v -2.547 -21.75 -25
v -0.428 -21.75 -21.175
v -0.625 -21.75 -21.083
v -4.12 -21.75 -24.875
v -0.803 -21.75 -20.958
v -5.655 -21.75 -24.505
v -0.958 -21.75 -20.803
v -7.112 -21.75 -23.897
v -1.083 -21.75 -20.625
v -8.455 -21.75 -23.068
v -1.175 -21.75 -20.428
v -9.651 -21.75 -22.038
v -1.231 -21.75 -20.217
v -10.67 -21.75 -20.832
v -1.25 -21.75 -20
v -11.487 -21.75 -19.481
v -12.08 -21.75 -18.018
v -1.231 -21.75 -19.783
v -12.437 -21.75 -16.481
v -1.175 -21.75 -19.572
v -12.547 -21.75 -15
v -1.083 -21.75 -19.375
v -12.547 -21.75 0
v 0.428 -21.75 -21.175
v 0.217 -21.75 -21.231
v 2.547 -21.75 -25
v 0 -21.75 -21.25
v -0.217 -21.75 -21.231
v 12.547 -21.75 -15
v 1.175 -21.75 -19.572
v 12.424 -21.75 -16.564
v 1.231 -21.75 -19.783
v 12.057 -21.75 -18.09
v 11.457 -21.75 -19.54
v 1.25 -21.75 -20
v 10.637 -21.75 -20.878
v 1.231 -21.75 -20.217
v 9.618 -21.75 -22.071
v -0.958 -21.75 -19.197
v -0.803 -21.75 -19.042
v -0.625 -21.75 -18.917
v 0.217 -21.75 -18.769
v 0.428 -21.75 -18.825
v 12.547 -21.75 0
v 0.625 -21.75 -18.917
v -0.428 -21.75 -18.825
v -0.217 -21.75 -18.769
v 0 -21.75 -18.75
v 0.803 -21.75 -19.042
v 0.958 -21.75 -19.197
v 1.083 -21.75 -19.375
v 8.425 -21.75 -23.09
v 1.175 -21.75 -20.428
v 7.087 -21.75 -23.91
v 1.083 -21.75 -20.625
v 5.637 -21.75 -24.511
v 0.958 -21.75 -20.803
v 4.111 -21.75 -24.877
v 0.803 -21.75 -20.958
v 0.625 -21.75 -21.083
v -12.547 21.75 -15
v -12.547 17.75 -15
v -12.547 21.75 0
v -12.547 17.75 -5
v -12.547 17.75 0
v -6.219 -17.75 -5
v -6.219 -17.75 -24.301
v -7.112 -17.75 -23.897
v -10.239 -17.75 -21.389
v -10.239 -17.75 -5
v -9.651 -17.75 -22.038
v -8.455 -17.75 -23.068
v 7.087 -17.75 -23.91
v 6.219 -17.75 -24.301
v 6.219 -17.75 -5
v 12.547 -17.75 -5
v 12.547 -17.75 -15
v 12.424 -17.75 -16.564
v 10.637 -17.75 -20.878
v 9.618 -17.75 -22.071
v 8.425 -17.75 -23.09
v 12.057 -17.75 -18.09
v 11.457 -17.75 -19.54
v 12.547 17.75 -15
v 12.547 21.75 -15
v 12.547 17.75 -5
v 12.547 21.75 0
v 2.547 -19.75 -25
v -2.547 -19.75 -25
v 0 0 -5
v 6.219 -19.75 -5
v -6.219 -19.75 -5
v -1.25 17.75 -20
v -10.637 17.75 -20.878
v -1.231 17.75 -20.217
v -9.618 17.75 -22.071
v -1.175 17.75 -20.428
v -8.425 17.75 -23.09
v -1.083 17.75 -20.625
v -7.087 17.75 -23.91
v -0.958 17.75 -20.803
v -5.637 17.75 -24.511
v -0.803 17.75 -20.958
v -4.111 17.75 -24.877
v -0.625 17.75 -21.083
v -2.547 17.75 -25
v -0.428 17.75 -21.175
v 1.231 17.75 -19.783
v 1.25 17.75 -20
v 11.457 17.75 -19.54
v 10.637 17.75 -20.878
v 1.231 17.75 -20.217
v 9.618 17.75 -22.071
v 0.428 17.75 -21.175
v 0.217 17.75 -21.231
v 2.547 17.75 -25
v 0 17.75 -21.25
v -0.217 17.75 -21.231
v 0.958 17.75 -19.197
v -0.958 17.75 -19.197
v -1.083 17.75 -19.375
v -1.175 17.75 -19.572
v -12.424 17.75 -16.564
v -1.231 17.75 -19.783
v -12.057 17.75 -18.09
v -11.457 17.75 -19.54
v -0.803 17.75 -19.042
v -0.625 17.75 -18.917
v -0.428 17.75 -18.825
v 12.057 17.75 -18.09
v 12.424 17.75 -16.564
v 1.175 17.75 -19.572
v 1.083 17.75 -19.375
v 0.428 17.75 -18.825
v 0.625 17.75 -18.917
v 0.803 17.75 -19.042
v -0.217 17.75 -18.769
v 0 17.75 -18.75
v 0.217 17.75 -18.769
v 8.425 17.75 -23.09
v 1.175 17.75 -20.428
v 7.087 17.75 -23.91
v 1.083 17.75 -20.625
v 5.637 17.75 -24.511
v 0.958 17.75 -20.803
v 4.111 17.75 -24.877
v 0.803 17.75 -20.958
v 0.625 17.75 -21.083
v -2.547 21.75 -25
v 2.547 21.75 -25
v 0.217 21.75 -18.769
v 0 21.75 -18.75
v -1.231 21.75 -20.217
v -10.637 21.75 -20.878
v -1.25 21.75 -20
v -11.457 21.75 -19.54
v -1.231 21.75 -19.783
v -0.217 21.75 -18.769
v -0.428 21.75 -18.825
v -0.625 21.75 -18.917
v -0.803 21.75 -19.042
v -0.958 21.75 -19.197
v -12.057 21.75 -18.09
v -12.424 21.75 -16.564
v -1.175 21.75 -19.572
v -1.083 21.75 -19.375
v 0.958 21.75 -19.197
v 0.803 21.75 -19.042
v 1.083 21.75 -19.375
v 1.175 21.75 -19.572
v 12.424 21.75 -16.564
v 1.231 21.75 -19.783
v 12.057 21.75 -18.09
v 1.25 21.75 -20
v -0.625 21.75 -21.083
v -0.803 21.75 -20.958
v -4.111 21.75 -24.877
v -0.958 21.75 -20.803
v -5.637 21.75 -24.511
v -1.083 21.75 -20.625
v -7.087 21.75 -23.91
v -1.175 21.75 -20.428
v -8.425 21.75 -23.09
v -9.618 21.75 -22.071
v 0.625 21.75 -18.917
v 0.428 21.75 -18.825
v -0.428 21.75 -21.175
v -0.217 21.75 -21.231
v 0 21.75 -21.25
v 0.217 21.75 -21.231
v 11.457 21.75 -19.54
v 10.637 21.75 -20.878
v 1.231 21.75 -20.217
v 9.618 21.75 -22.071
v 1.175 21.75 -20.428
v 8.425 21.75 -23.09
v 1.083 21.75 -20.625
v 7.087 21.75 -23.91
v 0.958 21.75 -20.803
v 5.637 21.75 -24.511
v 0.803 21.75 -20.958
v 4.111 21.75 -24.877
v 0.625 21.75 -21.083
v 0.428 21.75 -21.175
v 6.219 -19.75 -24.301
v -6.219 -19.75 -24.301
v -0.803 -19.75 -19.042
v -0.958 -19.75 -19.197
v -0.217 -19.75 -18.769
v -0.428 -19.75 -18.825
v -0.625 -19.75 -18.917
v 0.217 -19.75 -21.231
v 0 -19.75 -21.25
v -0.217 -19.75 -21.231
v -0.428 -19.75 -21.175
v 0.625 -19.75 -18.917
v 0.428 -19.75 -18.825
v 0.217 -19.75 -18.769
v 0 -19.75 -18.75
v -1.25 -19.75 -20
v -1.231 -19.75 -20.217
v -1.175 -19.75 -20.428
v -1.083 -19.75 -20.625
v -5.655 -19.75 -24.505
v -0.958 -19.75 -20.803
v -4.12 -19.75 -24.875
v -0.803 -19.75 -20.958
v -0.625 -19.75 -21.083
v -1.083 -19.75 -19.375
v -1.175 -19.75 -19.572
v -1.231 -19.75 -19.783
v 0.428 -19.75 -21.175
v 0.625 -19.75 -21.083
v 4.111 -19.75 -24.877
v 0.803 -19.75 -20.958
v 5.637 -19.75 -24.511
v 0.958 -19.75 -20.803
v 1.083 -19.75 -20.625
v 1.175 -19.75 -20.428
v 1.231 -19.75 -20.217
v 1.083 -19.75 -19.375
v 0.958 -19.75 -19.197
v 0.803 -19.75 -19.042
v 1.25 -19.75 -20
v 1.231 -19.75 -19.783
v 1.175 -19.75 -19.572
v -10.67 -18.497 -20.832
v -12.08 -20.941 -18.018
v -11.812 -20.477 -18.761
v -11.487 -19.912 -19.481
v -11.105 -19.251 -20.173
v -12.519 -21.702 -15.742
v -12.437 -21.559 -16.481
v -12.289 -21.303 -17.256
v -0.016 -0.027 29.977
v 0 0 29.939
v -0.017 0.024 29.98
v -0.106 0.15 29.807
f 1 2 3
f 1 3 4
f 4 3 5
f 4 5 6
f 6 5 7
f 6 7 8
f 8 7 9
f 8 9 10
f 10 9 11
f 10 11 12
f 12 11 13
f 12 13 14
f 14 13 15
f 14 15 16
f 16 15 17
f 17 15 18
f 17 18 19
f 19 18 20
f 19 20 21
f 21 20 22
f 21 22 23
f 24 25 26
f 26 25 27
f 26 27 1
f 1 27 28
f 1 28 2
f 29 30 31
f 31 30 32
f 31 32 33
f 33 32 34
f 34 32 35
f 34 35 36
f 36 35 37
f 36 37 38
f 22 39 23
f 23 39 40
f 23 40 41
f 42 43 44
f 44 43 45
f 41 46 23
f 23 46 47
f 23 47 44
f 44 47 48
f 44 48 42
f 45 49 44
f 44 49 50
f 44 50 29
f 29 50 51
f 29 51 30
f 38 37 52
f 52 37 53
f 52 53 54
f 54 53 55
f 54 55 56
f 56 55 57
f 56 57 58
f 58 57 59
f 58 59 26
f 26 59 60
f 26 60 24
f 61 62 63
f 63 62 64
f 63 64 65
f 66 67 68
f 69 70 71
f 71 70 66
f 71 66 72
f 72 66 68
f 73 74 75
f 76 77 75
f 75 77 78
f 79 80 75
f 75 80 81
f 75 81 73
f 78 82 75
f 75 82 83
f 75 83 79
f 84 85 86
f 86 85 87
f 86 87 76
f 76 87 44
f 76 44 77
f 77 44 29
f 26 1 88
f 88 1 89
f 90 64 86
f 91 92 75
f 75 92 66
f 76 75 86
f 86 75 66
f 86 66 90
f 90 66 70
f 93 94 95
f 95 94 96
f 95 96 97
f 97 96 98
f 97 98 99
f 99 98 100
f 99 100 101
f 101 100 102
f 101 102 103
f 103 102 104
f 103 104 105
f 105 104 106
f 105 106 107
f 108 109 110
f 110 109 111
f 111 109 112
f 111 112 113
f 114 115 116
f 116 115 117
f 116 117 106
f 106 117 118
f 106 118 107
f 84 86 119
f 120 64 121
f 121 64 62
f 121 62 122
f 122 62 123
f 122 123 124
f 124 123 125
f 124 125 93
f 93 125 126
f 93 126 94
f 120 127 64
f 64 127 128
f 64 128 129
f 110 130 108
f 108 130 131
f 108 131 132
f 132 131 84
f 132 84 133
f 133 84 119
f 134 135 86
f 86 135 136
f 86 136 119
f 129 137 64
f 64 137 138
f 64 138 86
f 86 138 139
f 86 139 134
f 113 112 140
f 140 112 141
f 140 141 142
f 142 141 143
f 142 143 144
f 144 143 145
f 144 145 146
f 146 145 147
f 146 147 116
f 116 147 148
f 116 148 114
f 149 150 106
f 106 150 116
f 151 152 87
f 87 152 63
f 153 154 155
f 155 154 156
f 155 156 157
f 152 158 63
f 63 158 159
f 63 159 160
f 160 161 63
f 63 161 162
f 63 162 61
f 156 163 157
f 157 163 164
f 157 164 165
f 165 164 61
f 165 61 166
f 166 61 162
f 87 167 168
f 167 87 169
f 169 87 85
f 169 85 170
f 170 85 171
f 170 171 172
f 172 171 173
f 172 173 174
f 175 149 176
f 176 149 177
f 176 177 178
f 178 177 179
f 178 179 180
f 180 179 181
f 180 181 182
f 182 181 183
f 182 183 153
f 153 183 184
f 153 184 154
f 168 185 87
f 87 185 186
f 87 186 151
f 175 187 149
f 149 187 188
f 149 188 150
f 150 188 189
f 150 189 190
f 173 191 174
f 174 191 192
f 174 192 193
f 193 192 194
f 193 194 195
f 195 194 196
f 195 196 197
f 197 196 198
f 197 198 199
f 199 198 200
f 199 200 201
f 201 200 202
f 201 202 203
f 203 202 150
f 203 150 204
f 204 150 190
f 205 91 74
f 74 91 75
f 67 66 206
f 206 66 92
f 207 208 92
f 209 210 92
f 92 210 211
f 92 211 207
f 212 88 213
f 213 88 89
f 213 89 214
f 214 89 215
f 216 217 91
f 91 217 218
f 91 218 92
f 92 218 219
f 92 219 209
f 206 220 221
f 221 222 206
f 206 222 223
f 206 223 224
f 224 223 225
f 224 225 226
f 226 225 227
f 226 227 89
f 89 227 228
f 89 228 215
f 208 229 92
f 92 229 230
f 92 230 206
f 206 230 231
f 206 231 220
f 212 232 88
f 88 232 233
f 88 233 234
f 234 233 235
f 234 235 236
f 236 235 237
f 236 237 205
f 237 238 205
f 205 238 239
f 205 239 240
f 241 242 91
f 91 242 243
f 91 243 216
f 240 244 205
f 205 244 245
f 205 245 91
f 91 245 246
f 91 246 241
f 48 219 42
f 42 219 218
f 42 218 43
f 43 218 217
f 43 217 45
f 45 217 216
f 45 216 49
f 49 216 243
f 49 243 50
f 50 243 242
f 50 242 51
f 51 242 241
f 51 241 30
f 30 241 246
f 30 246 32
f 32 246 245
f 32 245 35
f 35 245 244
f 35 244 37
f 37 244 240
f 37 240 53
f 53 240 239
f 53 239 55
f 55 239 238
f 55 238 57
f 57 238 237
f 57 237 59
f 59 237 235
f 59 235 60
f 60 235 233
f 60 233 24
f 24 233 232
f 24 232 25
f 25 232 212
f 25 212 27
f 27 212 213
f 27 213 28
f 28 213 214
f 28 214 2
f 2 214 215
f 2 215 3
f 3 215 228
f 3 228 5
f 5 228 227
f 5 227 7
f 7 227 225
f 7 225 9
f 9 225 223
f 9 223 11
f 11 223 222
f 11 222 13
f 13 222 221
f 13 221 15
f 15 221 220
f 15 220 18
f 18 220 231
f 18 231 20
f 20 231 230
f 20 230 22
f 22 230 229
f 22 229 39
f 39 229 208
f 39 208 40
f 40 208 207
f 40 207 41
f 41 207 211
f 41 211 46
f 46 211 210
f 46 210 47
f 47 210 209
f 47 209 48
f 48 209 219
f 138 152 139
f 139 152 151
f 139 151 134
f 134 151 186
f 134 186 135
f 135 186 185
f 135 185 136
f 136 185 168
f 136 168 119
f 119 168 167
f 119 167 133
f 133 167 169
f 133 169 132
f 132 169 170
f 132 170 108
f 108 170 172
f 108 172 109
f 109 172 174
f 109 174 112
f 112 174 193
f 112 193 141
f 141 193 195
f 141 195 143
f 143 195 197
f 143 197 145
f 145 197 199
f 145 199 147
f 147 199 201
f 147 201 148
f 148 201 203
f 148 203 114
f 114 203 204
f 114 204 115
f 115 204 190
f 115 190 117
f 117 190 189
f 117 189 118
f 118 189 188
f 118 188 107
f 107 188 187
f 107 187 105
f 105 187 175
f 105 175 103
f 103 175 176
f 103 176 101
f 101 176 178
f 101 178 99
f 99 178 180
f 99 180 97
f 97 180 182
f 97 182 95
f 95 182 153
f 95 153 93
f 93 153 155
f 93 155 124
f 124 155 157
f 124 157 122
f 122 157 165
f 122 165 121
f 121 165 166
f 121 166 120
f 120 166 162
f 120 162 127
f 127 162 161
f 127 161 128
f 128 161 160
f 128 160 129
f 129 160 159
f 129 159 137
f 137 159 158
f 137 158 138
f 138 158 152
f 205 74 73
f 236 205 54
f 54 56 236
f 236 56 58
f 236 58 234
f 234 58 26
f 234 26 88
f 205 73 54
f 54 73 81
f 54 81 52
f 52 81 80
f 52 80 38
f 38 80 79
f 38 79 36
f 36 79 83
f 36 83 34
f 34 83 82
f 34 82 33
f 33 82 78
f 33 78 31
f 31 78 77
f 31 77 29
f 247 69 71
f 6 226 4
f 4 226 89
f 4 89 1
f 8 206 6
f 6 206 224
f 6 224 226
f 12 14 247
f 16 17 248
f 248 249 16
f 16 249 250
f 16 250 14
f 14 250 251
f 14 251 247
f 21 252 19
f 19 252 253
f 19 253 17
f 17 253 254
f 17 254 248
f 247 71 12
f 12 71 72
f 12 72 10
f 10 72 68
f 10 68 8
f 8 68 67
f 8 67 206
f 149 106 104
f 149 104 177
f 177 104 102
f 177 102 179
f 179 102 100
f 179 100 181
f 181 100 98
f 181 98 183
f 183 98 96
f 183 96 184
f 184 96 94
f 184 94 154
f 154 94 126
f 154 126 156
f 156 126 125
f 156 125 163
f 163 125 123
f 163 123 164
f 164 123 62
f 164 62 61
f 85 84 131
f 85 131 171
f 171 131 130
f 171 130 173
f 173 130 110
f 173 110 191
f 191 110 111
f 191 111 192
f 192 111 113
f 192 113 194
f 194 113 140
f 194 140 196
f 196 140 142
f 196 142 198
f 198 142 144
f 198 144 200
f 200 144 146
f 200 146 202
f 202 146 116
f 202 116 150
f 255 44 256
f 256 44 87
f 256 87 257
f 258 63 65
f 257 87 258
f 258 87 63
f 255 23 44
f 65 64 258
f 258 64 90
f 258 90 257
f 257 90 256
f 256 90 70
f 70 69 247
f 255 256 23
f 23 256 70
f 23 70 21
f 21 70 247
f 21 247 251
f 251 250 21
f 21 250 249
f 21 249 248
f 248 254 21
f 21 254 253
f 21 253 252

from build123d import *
from OCP.BRepFilletAPI import BRepFilletAPI_MakeChamfer

# Parameters (mm, degrees)
SKETCH4_W                = 12.46
SKETCH4_H                = 17.25
BOSS_EXTRUDE3_DEPTH      = 6
BOSS_EXTRUDE6_DEPTH      = 7.3
BOSS_EXTRUDE6_DEPTH_BACK = 17.25
SKETCH8_R                = 12.546781182
SKETCH8_R_2              = 11.15
BOSS_EXTRUDE4_DEPTH      = 17.25
SKETCH6_R                = 2
CUT_EXTRUDE1_DEPTH       = 5
CHAMFER1_SIZE            = 0.5
CHAMFER1_SIZE_2          = 0.866025404
SKETCH10_W               = 12.46
SKETCH10_H               = 23.7
CUT_EXTRUDE3_DEPTH       = 17.25
CUT_EXTRUDE4_REACH       = 43.938
SKETCH11_W               = 5
SKETCH11_H               = 3
BOSS_EXTRUDE7_START      = -7.3
BOSS_EXTRUDE7_DEPTH      = 7.3
BOSS_EXTRUDE9_START      = 10
BOSS_EXTRUDE9_DEPTH      = 10
BOSS_EXTRUDE10_DEPTH     = 25.093562364
SKETCH18_W               = 20
SKETCH18_H               = 12.438292938
CUT_EXTRUDE5_DEPTH       = 2
CUT_EXTRUDE6_DEPTH       = 57.41497434
CUT_EXTRUDE6_DEPTH_BACK  = 57.41497434
SKETCH19_R               = 1.25
FILLET1_R                = 10
CUT_EXTRUDE7_DEPTH       = 55.620050849
CUT_EXTRUDE7_DEPTH_BACK  = 55.620050849
SKETCH20_W               = 25.093562364
SKETCH20_H               = 36.096781182
BOSS_EXTRUDE11_DEPTH     = 43.5
CUT_EXTRUDE8_DEPTH       = 40.12140358
CUT_EXTRUDE8_DEPTH_BACK  = 40.12140358
CUT_EXTRUDE9_DEPTH       = 40.12140358
CUT_EXTRUDE9_DEPTH_BACK  = 40.12140358


with BuildPart() as part:
    # Sketch4 → Boss-Extrude3 (new body)
    with BuildSketch(Plane.XY):
        with Locations((0, -1.35)):
            Rectangle(SKETCH4_W, SKETCH4_H)
    extrude(amount=BOSS_EXTRUDE3_DEPTH)



with BuildPart() as body_2:
    # Sketch8 → Boss-Extrude6 (new, two sides: drawn at the far end of the back side and taken through both)
    with BuildSketch(Plane(origin=(0, -9.975, 0), x_dir=(-1, 0, 0), z_dir=(0, -1, 0)).offset(-BOSS_EXTRUDE6_DEPTH_BACK)):
        with Locations(Location((0, -23.55, 0), (0, 0, 90))):
            Circle(SKETCH8_R)
        with Locations(Location((0, -23.55, 0), (0, 0, 90))):
            Circle(SKETCH8_R_2, mode=Mode.SUBTRACT)
    extrude(amount=BOSS_EXTRUDE6_DEPTH + BOSS_EXTRUDE6_DEPTH_BACK)


with BuildPart() as part_1:
    add(part.part)

    add(body_2.part)  # Boss-Extrude4 merges body 2
    # Sketch5 → Boss-Extrude4 (add)
    with BuildSketch(Plane(origin=(0, 7.275, 0), x_dir=(1, 0, 0), z_dir=(0, 1, 0))):
        with BuildLine():
            Line((12.546781182, -23.55), (12.546781182, 0))
            Line((12.546781182, 0), (6.23, 0))
            Line((6.23, 0), (6.23, -29.7))
            Line((6.23, -29.7), (-6.23, -29.7))
            Line((-6.23, -29.7), (-6.23, 0))
            Line((-6.23, 0), (-12.546781182, 0))
            Line((-12.546781182, 0), (-12.546781182, -23.55))
            ThreePointArc((-12.546781182, -23.55), (0, -36.096781182), (12.546781182, -23.55))
        make_face()
    extrude(amount=-BOSS_EXTRUDE4_DEPTH)

    # Sketch6 → Cut-Extrude1 (cut)
    with BuildSketch(Plane(origin=(0, 7.275, 0), x_dir=(1, 0, 0), z_dir=(0, 1, 0))):
        with Locations(Location((0, -3.5, 0), (0, 0, 270))):
            Circle(SKETCH6_R)
        with Locations(Location((0, -32.2, 0), (0, 0, 270))):
            Circle(SKETCH6_R)
    extrude(amount=-CUT_EXTRUDE1_DEPTH, mode=Mode.SUBTRACT)

    # Chamfer1
    chamfer1_edges_1 = [part_1.edges().sort_by_distance(p)[0] for p in [
        (0, 7.275, 1.5),
    ]]
    chamfer1_side_1 = [part_1.faces().sort_by_distance(p)[0] for p in [
        (0, 7.275, 1.49),
    ]]
    chamfer1_edges_2 = [part_1.edges().sort_by_distance(p)[0] for p in [
        (0, 7.275, 30.2),
    ]]
    chamfer1_side_2 = [part_1.faces().sort_by_distance(p)[0] for p in [
        (0, 7.275, 30.19),
    ]]
    chamfer1 = BRepFilletAPI_MakeChamfer(part_1.part.solid().wrapped)
    for e in chamfer1_edges_1:
        chamfer1.Add(CHAMFER1_SIZE - 0.0001, CHAMFER1_SIZE_2 - 0.0001, e.wrapped, chamfer1_side_1[0].wrapped)
    for e in chamfer1_edges_2:
        chamfer1.Add(CHAMFER1_SIZE - 0.0001, CHAMFER1_SIZE_2 - 0.0001, e.wrapped, chamfer1_side_2[0].wrapped)
    add(Compound.cast(chamfer1.Shape()), mode=Mode.REPLACE)  # a hair under: the kernel refuses the full size

    # Sketch10 → Cut-Extrude3 (cut)
    with BuildSketch(Plane(origin=(0, 7.275, 0), x_dir=(1, 0, 0), z_dir=(0, 1, 0))):
        with Locations((0, -17.85)):
            Rectangle(SKETCH10_W, SKETCH10_H)
    extrude(amount=-CUT_EXTRUDE3_DEPTH, mode=Mode.SUBTRACT)

    # Sketch11 → Cut-Extrude4 (cut, up to next)
    with BuildSketch(Plane.XY.offset(36.096781182), mode=Mode.PRIVATE) as cut_extrude4_sk1:
        with Locations((0, -8.475)):
            Rectangle(SKETCH11_W, SKETCH11_H)
    cut_extrude4_tool1 = extrude(cut_extrude4_sk1.sketch, amount=-CUT_EXTRUDE4_REACH, mode=Mode.PRIVATE) & part_1.part
    add(cut_extrude4_tool1.solids().sort_by_distance((0, -8.475, 36.096781))[0], mode=Mode.SUBTRACT)

    # Sketch13 → Boss-Extrude7 (add)
    with BuildSketch(Plane.XZ.offset(17.275).offset(BOSS_EXTRUDE7_START)):
        with BuildLine():
            Line((-12.546781182, 23.55), (-12.546781182, 0))
            Line((-12.546781182, 0), (12.546781182, 0))
            Line((12.546781182, 0), (12.546781182, 23.55))
            ThreePointArc((12.546781182, 23.55), (0, 11.003218818), (-12.546781182, 23.55))
        make_face()
    extrude(amount=BOSS_EXTRUDE7_DEPTH)

    # Sketch15 → Boss-Extrude9 (add)
    with BuildSketch(Plane(origin=(0, 7.275, 0), x_dir=(1, 0, 0), z_dir=(0, 1, 0)).offset(BOSS_EXTRUDE9_START)):
        with BuildLine():
            Line((-12.546781182, 0), (12.546781182, 0))
            Line((12.546781182, 0), (12.546781182, -23.55))
            ThreePointArc((12.546781182, -23.55), (0, -36.096781182), (-12.546781182, -23.55))
            Line((-12.546781182, -23.55), (-12.546781182, 0))
        make_face()
        with BuildLine():
            Line((-6.23, -0.8), (6.23, -0.8))
            Line((6.23, -0.8), (6.23, -33.5))
            ThreePointArc((6.23, -33.5), (5.937106781, -34.207106781), (5.23, -34.5))
            Line((5.23, -34.5), (-5.23, -34.5))
            ThreePointArc((-5.23, -34.5), (-5.937106781, -34.207106781), (-6.23, -33.5))
            Line((-6.23, -33.5), (-6.23, -0.8))
        make_face(mode=Mode.SUBTRACT)
    extrude(amount=-BOSS_EXTRUDE9_DEPTH)

    # Sketch17 → Boss-Extrude10 (add)
    with BuildSketch(Plane(origin=(-12.546781182, 4.728218818, 0), x_dir=(0, -1, 0), z_dir=(1, 0, 0))):
        Polygon((26.478218818, 25), (26.478218818, 0), (-17.021781182, 0), (-17.021781182, 25), (-13.021781182, 25), (-13.021781182, 5), (22.478218818, 5), (22.478218818, 25), align=None)
    extrude(amount=BOSS_EXTRUDE10_DEPTH)

    # Sketch18 → Cut-Extrude5 (cut)
    with BuildSketch(Plane.ZX.offset(-17.75)):
        with Locations((-15, 0)):
            Rectangle(SKETCH18_W, SKETCH18_H)
    extrude(amount=-CUT_EXTRUDE5_DEPTH, mode=Mode.SUBTRACT)

    # Sketch19 → Cut-Extrude6 (cut, two sides: drawn at the far end of the back side and taken through both)
    with BuildSketch(Plane.ZX.offset(-19.75).offset(-CUT_EXTRUDE6_DEPTH_BACK)):
        with Locations((-20, 0)):
            Circle(SKETCH19_R)
    extrude(amount=CUT_EXTRUDE6_DEPTH + CUT_EXTRUDE6_DEPTH_BACK, mode=Mode.SUBTRACT)

    # Fillet1
    fillet1_edges = [part_1.edges().sort_by_distance(p)[0] for p in [
        (12.546781182, -19.75, -25),
        (-12.546781182, -19.75, -25),
        (-12.546781182, 19.75, -25),
        (12.546781182, 19.75, -25),
    ]]
    fillet(fillet1_edges, radius=FILLET1_R)

    # Sketch20 → Cut-Extrude7 (cut, two sides: drawn at the far end of the back side and taken through both)
    with BuildSketch(Plane(origin=(0, 17.275, 0), x_dir=(1, 0, 0), z_dir=(0, 1, 0)).offset(-CUT_EXTRUDE7_DEPTH_BACK)):
        with Locations((0, -18.048390591)):
            Rectangle(SKETCH20_W, SKETCH20_H)
    extrude(amount=CUT_EXTRUDE7_DEPTH + CUT_EXTRUDE7_DEPTH_BACK, mode=Mode.SUBTRACT)

    # Sketch21 → Boss-Extrude11 (add)
    with BuildSketch(Plane(origin=(0, 21.75, 0), x_dir=(1, 0, 0), z_dir=(0, 1, 0))):
        Polygon((12.546781182, 0), (-0.025415104, -30), (-12.546781182, 0), align=None)
    extrude(amount=-BOSS_EXTRUDE11_DEPTH)

    # Sketch22 → Cut-Extrude8 (cut, two sides: drawn at the far end of the back side and taken through both)
    with BuildSketch(Plane(origin=(0, 0, 0), x_dir=(0, 0, -1), z_dir=(1, 0, 0)).offset(-CUT_EXTRUDE8_DEPTH_BACK)):
        Polygon((0, 21.75), (-30, 0.01), (-30, 21.75), align=None)
        Polygon((0, -21.75), (-30, -21.75), (-30, -0.01), align=None)
    extrude(amount=CUT_EXTRUDE8_DEPTH + CUT_EXTRUDE8_DEPTH_BACK, mode=Mode.SUBTRACT)

    # Sketch23 → Cut-Extrude9 (cut, two sides: drawn at the far end of the back side and taken through both)
    with BuildSketch(Plane(origin=(0, 0, 0), x_dir=(-1, 0, 0), z_dir=(0, 0, -1)).offset(-CUT_EXTRUDE9_DEPTH_BACK)):
        Polygon((12.546781182, 17.75), (0, 0), (12.546781182, -21.75), align=None)
    extrude(amount=CUT_EXTRUDE9_DEPTH + CUT_EXTRUDE9_DEPTH_BACK, mode=Mode.SUBTRACT)


solid = part_1.part
